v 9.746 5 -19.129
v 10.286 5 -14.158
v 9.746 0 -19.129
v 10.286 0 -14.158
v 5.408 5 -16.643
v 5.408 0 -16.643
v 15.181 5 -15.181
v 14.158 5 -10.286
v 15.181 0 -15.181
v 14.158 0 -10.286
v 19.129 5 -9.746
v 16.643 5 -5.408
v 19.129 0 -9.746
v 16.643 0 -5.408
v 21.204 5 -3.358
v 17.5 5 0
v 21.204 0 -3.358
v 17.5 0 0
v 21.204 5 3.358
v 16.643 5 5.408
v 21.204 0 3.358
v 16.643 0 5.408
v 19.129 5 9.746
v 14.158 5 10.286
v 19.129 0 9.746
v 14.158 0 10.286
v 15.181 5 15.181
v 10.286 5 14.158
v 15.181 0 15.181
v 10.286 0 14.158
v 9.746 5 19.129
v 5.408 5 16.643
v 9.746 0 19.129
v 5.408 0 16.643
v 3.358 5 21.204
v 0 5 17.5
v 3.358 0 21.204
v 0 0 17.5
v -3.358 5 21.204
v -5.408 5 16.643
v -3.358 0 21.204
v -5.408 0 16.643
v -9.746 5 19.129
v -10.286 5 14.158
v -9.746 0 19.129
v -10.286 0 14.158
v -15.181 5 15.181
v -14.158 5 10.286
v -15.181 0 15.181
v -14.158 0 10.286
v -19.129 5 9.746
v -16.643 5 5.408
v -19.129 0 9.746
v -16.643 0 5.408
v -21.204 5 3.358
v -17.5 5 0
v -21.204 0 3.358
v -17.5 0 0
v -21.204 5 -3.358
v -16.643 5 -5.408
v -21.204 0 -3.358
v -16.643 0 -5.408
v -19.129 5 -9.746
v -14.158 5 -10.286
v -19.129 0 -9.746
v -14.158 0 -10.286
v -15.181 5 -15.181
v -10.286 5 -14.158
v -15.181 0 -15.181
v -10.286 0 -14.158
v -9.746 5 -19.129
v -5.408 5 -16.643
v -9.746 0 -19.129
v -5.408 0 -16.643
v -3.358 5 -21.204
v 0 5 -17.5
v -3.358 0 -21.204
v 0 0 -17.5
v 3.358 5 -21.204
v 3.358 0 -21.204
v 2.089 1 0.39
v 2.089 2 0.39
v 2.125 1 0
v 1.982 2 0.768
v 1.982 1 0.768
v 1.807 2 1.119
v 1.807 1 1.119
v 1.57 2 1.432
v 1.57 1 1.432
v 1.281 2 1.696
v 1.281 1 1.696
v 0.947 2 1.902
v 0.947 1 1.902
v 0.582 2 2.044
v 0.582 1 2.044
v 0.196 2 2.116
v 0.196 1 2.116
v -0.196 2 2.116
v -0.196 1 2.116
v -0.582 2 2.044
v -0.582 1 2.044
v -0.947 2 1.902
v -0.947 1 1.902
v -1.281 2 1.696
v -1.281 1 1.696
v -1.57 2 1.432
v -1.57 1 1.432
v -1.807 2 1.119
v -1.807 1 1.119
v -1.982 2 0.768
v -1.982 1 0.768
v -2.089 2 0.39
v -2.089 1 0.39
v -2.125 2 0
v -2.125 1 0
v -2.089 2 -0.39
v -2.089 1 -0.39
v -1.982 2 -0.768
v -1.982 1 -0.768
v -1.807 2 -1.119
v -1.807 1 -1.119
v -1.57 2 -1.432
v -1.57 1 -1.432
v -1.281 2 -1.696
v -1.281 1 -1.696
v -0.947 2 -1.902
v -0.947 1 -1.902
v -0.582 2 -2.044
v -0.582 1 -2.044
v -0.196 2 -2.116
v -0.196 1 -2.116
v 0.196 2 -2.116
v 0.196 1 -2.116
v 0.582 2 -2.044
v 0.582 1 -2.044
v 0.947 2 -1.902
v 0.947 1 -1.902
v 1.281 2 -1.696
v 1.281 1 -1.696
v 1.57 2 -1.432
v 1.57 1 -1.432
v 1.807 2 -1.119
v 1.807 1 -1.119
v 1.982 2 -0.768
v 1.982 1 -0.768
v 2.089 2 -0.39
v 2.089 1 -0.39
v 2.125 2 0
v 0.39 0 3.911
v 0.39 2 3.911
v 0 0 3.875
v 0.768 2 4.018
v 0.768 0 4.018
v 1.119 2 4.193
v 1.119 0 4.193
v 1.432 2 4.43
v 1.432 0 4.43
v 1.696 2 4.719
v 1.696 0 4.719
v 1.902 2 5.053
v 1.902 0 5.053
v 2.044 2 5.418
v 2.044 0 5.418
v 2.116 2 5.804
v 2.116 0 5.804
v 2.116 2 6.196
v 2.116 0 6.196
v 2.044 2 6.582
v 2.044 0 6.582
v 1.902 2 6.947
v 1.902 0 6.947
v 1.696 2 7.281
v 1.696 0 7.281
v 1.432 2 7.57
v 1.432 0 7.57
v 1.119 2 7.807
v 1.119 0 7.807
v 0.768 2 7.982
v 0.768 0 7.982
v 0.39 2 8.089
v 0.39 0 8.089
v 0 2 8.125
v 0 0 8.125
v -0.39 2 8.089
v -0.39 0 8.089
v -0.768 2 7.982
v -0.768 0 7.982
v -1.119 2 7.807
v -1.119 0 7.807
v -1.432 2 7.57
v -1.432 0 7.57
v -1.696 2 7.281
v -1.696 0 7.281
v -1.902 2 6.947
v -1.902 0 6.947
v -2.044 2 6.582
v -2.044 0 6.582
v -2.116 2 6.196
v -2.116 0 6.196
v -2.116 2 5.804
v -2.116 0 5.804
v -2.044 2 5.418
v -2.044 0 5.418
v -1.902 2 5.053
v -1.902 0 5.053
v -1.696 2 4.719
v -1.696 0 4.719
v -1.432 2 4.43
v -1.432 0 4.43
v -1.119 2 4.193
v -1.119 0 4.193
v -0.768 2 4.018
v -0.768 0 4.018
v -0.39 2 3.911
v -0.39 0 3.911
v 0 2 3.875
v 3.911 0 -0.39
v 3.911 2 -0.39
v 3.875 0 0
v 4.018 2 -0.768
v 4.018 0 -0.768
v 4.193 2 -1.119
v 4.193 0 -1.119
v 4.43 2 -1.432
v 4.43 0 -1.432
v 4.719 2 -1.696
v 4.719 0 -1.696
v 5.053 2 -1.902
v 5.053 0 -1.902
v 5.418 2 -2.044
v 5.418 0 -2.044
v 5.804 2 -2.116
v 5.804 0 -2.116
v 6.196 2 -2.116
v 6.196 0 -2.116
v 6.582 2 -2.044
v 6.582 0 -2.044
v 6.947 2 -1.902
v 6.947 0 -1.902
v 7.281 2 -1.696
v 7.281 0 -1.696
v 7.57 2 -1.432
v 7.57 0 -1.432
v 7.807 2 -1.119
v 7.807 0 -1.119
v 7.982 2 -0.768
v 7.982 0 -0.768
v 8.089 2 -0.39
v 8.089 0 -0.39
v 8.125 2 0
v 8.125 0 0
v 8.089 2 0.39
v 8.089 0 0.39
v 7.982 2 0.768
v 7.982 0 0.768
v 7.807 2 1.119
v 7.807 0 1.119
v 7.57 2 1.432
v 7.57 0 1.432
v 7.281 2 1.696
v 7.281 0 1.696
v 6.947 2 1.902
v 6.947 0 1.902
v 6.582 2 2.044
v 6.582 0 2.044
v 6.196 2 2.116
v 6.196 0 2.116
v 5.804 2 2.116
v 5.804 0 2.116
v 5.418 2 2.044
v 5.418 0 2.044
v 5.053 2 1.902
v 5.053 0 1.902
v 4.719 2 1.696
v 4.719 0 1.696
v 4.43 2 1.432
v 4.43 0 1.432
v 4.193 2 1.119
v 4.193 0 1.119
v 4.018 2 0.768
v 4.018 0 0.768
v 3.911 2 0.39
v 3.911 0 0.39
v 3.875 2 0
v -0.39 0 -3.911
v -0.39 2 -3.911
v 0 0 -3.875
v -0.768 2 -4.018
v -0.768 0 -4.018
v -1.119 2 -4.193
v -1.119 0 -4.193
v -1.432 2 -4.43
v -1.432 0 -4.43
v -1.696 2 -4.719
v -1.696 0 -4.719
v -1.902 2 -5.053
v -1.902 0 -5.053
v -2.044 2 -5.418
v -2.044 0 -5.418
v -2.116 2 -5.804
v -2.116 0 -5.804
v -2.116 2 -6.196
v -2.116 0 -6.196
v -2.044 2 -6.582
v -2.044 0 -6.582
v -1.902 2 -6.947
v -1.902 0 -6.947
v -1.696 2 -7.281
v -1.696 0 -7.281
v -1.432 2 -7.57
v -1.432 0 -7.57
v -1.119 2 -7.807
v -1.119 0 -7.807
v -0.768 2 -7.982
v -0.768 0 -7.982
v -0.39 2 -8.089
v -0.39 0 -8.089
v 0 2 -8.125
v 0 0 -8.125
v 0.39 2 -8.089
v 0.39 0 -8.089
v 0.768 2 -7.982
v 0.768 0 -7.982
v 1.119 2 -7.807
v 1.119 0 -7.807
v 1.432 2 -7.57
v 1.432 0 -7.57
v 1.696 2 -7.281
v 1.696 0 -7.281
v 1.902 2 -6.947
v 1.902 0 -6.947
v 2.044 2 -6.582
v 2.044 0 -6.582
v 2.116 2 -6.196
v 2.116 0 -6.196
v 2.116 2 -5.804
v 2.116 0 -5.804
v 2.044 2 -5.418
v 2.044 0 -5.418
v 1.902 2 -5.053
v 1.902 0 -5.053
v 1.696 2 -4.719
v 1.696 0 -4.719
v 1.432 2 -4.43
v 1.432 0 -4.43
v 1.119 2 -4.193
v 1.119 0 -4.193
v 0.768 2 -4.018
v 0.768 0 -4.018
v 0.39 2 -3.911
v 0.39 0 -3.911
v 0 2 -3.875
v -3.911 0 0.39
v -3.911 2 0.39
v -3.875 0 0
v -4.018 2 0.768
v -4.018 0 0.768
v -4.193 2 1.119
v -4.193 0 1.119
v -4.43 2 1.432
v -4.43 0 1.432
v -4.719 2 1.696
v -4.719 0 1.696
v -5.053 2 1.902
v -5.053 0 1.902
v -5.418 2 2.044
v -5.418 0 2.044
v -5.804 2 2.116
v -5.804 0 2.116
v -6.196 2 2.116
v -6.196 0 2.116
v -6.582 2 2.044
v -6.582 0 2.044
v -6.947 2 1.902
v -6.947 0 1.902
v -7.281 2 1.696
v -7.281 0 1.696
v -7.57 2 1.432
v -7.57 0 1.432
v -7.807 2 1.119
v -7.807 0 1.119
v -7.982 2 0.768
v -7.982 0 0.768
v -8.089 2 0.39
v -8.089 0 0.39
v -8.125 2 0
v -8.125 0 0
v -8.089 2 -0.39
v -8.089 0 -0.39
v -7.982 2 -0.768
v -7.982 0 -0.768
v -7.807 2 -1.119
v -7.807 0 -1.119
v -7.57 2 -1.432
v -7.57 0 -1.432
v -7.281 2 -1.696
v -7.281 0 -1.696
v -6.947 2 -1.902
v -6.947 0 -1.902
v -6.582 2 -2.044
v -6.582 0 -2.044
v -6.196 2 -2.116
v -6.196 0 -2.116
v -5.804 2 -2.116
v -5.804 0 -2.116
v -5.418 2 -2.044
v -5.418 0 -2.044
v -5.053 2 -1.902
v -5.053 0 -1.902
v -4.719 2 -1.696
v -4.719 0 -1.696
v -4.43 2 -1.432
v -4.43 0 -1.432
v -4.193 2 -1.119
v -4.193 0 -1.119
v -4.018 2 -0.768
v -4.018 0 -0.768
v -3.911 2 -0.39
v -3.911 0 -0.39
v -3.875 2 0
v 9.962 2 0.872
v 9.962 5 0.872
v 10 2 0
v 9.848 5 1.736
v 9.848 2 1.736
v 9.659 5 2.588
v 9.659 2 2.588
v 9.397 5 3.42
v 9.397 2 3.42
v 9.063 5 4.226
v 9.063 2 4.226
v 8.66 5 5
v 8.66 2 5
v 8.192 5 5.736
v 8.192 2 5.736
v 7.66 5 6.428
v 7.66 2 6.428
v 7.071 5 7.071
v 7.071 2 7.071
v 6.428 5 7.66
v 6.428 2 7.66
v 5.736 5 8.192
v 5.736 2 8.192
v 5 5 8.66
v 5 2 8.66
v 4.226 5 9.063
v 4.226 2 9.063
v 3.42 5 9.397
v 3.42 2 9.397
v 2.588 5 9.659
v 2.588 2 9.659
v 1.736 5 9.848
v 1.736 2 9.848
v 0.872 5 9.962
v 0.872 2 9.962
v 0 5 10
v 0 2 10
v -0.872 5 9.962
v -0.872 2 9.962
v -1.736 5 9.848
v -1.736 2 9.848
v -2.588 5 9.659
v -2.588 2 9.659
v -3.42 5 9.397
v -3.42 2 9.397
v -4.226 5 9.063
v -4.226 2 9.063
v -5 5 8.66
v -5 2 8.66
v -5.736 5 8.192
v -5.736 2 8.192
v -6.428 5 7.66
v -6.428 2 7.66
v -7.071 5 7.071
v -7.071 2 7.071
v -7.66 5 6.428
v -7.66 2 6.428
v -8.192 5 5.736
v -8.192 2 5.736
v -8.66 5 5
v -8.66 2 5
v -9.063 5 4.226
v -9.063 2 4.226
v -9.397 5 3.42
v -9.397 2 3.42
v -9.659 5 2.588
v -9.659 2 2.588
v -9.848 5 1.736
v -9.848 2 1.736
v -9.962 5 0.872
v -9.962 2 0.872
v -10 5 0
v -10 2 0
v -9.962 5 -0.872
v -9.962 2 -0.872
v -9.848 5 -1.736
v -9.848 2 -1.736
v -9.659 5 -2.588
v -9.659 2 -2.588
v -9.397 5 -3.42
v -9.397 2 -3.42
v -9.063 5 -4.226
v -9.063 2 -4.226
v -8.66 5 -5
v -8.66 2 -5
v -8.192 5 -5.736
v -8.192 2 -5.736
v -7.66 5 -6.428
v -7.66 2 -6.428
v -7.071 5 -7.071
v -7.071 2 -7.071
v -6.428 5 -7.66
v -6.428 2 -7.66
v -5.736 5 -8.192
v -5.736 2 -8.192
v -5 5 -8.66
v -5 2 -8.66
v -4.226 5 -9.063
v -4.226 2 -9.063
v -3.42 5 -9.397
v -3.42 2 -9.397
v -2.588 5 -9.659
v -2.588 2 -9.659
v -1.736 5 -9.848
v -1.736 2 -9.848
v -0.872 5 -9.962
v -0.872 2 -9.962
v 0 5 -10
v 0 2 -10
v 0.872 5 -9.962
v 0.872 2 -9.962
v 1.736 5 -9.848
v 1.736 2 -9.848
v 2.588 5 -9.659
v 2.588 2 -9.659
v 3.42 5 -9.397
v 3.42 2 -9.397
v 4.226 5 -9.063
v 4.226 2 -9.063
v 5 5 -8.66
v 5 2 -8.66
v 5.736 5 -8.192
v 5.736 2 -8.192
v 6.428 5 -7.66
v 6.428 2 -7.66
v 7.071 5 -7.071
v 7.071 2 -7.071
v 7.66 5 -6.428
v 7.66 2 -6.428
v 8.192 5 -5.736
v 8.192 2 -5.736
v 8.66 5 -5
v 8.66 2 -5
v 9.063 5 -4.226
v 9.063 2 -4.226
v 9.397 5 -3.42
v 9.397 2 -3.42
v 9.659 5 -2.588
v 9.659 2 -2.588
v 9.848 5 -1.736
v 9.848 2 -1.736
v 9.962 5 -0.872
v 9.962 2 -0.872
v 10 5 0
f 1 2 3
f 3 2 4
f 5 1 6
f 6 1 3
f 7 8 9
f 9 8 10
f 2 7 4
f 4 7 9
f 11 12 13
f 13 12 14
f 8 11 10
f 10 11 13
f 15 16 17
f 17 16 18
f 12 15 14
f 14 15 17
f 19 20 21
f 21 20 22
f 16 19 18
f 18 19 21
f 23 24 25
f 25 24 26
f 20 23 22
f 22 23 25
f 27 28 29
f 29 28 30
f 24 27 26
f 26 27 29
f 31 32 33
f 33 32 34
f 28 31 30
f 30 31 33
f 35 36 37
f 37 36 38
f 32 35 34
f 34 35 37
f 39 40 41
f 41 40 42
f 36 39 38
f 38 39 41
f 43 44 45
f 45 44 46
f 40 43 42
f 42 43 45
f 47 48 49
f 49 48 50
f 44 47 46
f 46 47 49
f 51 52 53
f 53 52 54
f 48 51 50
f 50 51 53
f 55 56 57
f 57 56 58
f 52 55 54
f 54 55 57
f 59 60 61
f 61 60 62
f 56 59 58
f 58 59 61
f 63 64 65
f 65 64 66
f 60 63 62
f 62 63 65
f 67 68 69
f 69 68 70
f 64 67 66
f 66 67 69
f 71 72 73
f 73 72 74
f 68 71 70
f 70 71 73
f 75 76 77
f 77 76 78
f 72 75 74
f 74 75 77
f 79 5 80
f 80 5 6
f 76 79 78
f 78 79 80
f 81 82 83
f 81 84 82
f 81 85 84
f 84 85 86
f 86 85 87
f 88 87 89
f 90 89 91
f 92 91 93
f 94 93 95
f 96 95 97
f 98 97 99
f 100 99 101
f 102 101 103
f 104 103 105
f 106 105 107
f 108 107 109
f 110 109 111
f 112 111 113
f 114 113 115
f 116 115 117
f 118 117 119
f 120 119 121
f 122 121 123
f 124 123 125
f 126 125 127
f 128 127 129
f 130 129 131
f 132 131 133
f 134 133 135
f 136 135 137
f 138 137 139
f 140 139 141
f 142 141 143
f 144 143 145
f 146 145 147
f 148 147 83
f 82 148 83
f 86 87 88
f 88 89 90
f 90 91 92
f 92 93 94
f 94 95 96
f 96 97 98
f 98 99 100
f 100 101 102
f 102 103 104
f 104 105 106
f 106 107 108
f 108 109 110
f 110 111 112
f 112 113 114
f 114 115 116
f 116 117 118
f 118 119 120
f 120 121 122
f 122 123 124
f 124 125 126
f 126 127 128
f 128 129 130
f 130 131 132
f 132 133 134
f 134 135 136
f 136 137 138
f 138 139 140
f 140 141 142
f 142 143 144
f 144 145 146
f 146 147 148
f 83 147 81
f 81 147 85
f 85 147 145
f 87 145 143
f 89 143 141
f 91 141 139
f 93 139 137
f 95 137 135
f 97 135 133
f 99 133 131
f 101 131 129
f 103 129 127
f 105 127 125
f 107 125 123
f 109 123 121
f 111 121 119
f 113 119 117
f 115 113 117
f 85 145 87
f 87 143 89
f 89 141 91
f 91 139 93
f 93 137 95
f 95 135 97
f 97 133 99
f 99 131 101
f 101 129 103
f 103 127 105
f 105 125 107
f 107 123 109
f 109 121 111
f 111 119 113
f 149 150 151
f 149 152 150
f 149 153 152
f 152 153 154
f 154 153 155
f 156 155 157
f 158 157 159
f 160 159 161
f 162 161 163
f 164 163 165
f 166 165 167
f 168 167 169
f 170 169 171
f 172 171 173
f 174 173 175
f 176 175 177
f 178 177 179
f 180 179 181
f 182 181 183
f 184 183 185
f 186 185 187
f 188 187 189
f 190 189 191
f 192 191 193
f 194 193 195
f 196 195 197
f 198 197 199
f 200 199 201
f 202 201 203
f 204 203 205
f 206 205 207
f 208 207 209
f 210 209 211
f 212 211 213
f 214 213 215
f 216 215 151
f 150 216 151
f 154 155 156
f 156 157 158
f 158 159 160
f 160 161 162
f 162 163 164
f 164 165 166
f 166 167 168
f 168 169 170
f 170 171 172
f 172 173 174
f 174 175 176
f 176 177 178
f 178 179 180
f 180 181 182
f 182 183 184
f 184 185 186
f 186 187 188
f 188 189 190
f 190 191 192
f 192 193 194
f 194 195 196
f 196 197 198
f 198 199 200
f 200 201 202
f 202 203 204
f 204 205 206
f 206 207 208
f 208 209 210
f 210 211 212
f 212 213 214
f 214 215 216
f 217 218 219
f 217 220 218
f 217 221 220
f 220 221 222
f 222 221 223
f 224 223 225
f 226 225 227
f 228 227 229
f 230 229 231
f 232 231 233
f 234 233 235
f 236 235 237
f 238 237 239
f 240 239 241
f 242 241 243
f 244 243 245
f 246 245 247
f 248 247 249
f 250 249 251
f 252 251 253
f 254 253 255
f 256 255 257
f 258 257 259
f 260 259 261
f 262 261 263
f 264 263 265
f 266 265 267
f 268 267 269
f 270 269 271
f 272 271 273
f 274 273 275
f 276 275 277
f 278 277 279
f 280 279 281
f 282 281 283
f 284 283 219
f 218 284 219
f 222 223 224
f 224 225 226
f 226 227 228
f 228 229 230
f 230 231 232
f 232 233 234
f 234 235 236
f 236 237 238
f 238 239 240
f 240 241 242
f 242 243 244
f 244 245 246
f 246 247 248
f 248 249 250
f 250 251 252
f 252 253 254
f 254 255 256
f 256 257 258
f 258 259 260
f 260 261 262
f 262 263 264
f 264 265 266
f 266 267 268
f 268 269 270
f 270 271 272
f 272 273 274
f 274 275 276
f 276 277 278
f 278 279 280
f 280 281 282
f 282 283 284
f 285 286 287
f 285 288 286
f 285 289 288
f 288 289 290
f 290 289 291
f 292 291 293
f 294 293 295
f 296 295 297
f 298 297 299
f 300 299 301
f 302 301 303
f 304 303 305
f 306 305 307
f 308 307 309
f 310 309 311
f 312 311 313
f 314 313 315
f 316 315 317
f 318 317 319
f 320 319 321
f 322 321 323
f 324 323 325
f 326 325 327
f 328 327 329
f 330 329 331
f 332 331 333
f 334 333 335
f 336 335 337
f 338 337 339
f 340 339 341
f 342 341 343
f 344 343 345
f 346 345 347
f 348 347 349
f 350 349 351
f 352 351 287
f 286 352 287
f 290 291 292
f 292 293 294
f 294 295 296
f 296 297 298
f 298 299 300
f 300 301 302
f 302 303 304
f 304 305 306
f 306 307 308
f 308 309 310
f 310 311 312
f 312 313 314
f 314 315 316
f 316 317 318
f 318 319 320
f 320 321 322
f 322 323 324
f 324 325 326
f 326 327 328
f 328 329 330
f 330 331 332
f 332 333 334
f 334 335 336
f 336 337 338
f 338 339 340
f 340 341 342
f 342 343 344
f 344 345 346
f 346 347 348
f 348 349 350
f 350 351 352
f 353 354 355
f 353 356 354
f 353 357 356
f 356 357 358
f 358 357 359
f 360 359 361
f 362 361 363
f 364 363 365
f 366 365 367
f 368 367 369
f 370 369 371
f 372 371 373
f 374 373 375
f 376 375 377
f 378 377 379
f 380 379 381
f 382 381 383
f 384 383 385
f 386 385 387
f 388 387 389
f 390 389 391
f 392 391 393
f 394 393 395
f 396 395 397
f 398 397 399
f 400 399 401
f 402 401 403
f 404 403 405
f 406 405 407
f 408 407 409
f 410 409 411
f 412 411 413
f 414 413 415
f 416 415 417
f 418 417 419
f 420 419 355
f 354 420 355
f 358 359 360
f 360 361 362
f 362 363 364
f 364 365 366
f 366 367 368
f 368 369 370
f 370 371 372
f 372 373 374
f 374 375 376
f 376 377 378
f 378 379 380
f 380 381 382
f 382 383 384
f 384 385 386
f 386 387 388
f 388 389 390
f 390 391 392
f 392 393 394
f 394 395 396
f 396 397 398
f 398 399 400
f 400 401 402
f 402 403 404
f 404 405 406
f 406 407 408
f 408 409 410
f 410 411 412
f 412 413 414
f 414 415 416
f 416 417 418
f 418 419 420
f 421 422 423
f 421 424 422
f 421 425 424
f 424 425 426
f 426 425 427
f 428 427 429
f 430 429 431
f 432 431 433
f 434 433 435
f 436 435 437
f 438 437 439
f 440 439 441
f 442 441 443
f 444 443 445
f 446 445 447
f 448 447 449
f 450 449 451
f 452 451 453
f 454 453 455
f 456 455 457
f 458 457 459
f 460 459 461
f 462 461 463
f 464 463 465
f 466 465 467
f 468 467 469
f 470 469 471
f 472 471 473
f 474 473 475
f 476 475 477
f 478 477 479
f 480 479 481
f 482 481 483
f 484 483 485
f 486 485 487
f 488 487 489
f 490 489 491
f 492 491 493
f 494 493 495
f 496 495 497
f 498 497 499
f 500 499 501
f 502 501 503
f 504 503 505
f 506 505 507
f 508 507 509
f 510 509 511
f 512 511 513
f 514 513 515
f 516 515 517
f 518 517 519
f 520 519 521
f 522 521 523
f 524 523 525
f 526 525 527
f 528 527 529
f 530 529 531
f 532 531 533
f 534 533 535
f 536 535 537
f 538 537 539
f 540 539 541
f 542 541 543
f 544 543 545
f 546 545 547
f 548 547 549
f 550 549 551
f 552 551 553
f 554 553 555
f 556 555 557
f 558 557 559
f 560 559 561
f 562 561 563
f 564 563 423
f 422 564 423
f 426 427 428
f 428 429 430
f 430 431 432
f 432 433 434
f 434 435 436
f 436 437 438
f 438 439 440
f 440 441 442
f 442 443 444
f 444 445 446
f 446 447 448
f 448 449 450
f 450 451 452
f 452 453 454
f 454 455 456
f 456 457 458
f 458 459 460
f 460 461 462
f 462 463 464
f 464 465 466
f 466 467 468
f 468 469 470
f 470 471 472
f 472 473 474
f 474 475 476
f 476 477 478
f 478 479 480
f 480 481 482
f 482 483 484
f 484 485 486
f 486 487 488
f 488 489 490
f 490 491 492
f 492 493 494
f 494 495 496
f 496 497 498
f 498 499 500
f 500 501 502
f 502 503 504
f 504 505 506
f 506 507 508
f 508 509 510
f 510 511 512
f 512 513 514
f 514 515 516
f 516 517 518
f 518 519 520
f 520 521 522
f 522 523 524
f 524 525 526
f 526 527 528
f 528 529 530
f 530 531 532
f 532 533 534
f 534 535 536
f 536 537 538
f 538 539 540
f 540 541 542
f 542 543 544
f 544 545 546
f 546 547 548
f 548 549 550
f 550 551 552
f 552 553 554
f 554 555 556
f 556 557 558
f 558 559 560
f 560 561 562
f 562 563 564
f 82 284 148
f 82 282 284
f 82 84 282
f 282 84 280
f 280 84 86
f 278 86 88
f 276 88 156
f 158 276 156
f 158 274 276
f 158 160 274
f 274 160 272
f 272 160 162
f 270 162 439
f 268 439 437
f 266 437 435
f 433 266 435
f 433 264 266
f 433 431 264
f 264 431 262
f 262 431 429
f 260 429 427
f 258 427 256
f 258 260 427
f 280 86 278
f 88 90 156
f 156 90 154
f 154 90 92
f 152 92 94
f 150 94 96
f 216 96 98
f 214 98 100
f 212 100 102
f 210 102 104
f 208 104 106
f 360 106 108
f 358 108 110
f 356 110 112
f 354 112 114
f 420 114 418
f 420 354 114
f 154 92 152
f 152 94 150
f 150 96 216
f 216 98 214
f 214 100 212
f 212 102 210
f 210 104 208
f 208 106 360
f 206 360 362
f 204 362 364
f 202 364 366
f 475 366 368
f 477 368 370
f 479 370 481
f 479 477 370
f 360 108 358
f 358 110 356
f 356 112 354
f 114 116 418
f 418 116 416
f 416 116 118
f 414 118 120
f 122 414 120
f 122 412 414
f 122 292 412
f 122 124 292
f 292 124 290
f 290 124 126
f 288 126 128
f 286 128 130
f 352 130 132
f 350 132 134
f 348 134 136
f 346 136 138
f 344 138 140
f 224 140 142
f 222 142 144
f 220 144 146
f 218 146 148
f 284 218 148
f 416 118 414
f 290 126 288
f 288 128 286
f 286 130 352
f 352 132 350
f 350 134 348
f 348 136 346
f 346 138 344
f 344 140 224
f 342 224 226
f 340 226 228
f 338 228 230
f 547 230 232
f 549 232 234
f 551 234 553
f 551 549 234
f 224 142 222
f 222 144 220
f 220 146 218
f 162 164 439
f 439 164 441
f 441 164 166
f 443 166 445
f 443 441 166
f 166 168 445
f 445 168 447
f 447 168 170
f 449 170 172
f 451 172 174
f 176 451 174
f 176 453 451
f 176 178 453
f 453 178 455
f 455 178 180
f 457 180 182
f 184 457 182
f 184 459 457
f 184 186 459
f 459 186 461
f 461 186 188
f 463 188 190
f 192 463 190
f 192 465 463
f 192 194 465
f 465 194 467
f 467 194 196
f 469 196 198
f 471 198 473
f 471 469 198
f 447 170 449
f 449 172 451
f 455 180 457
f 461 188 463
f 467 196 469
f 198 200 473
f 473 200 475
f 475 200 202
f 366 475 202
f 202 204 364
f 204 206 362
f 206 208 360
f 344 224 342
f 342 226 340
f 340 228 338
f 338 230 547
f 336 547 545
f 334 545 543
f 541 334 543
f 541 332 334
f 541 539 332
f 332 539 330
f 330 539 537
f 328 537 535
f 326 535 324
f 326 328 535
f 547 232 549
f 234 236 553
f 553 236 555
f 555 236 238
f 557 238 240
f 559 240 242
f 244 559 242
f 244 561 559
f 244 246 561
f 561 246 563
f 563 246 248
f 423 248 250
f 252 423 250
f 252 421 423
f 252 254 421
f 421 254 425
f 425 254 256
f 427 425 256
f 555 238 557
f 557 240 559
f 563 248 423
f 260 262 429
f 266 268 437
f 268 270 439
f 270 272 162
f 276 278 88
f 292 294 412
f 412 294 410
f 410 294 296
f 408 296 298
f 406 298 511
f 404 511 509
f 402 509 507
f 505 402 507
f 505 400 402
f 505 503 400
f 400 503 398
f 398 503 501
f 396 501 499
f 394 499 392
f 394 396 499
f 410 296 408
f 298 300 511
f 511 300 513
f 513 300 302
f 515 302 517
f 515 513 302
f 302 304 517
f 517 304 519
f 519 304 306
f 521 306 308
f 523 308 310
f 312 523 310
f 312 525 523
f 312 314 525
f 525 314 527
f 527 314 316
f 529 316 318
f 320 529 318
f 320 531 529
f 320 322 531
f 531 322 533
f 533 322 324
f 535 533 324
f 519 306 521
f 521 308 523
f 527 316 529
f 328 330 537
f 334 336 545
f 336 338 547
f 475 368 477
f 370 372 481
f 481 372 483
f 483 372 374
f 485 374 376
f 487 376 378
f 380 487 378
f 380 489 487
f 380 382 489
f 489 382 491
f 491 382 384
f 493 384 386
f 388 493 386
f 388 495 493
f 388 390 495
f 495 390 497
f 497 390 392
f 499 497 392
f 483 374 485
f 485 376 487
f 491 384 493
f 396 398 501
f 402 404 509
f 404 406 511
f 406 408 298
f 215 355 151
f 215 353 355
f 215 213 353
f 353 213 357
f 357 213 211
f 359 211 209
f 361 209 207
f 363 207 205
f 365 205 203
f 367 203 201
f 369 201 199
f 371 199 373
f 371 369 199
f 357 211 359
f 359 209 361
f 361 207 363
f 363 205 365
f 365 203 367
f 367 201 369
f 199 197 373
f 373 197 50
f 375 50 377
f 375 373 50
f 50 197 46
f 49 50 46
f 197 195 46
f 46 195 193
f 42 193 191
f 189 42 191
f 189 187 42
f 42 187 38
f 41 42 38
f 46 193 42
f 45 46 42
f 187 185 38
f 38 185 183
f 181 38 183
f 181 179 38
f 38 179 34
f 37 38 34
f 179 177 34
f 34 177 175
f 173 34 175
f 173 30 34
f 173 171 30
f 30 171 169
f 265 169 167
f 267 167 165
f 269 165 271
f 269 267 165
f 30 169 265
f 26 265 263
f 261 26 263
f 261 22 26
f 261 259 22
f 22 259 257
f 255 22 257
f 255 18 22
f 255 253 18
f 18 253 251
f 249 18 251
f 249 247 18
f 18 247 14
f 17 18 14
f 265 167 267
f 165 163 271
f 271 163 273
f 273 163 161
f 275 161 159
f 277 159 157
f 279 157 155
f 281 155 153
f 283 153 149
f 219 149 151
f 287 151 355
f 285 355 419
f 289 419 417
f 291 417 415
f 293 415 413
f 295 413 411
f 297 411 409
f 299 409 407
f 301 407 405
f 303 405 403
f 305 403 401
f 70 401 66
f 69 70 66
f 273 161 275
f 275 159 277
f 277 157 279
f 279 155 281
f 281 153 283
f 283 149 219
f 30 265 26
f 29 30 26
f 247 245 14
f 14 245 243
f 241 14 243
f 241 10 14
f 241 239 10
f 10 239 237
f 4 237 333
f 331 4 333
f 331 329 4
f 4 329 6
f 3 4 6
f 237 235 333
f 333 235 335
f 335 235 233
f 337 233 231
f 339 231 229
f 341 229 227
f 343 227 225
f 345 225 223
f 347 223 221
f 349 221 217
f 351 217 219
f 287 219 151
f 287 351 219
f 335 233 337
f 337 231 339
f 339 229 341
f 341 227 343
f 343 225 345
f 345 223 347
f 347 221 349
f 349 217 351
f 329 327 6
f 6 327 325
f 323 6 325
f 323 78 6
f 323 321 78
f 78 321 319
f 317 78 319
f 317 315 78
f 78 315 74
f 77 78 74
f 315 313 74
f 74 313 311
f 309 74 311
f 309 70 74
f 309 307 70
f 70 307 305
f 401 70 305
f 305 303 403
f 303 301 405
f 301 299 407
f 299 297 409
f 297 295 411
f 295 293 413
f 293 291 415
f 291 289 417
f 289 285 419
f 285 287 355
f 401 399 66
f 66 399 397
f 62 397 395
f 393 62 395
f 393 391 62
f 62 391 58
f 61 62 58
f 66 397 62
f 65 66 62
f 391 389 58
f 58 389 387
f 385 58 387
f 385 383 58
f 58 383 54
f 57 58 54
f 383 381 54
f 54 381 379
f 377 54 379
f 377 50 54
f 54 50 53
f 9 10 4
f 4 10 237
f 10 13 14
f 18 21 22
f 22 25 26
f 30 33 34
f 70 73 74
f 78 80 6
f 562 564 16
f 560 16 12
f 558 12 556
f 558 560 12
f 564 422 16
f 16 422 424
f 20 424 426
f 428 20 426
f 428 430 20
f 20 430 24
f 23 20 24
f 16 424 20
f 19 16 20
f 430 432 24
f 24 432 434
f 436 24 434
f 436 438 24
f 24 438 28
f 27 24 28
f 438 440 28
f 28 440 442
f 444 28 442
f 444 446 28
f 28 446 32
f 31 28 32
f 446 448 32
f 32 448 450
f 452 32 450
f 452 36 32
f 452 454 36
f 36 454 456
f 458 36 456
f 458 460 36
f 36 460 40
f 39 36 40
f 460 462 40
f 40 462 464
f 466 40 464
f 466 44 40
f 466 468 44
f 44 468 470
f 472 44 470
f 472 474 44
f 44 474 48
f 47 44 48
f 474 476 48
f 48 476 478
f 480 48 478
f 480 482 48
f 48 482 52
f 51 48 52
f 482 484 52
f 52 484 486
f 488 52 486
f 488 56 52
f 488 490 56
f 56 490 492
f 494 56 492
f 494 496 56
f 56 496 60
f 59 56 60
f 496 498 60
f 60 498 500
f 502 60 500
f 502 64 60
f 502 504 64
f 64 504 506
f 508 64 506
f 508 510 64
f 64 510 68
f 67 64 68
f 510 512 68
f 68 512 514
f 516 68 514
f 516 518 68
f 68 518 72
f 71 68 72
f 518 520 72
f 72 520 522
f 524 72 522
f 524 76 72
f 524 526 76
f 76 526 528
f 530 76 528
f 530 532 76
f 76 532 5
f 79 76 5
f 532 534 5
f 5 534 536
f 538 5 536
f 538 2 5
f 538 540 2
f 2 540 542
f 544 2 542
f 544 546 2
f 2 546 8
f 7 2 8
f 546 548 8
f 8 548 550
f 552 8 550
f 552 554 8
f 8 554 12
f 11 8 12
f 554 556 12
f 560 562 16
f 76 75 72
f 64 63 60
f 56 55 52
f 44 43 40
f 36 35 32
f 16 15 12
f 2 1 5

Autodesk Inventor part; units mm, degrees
ref_plane "YZ Plane" through (0, 0, 0) normal (1, 0, 0) x (0, 1, 0)
ref_plane "XZ Plane" through (0, 0, 0) normal (0, 1, 0) x (-1, 0, 0)
ref_plane "XY Plane" through (0, 0, 0) normal (0, 0, 1) x (1, 0, 0)
sketch "Sketch1" plane through (0, 0, 0) normal (0, 1, 0) x (-1, 0, 0)
  circle A0 centre (0, 0) radius 17.5
  dimension "d0" = 35
extrude "Extrusion1" add sketch "Sketch1" along normal blind 5
sketch "Sketch2" plane through (0, 5, 0) normal (0, 1, 0) x (1, 0, 0)
  circle A0 centre (0, 0) radius 10
  dimension "d3" = 20
extrude "Extrusion2" cut sketch "Sketch2" against normal blind 3
sketch "Sketch3" plane through (0, 2, 0) normal (0, 1, 0) x (1, 0, 0)
  circle A0 centre (-6, 0) radius 2.125
  circle A1 centre (-6, 0) radius 2.125
  point P0 (0, 0)
  dimension "d7" = 4.25
extrude "Extrusion3" cut sketch "Sketch3" against normal through all
pattern_circular "Circular Pattern1" count 4 over 360 about axis through (0, 5, 0) along (0, -1, 0) of "Extrusion3"
sketch "Sketch4" plane through (0, 2, 0) normal (0, 1, 0) x (1, 0, 0)
  circle A0 centre (0, 0) radius 2.125
  dimension "d13" = 4.25
extrude "Extrusion4" cut sketch "Sketch4" against normal blind 1
sketch "Sketch6" plane through (0, 5, 0) normal (0, 1, 0) x (1, 0, 0)
  arc A0 (5.4078, 16.6435) -> (0, 17.5) centre (0, 0) ccw
  line L0 (0, 0) -> (5.4078, 16.6435) construction
  line L1 (0, 0) -> (0, 17.5) construction
  line L2 (0, 0) -> (4.3015, 27.1585)
  line L3 (0, 0) -> (27.497, 0) construction
  arc A1 (5.4078, 16.6435) -> (0, 17.5) centre (0, 0) ccw
  dimension "d16" = 18
  dimension "d17" = 81
sketch "Sketch7" plane through (0, 5, 0) normal (0, 1, 0) x (1, 0, 0)
  circle A0 centre (0, 0) radius 17.5 projected
  arc A1 (5.4078, 16.6435) -> (0, 17.5) centre (0, 0) ccw
  line L0 (0, 0) -> (5.4078, 16.6435) construction
  line L1 (0, 0) -> (0, 17.5) construction
  line L2 (0, 0) -> (4.2807, 27.027)
  line L3 (0, 0) -> (27.3639, 0) construction
  line L4 (0, 17.5) -> (3.3584, 21.2042)
  line L5 (3.3584, 21.2042) -> (5.4078, 16.6435)
  dimension "d18" = 18
  dimension "d19" = 81
  dimension "d20" = 5
extrude "Extrusion5" add sketch "Sketch7" against normal blind 5 contours A0 L2 L5 | L4 L2 A0
pattern_circular "Circular Pattern2" count 20 over 360 about axis through (0, 0, 0) along (0, 1, 0) of "Extrusion5"
properties part number "SmallGear"
